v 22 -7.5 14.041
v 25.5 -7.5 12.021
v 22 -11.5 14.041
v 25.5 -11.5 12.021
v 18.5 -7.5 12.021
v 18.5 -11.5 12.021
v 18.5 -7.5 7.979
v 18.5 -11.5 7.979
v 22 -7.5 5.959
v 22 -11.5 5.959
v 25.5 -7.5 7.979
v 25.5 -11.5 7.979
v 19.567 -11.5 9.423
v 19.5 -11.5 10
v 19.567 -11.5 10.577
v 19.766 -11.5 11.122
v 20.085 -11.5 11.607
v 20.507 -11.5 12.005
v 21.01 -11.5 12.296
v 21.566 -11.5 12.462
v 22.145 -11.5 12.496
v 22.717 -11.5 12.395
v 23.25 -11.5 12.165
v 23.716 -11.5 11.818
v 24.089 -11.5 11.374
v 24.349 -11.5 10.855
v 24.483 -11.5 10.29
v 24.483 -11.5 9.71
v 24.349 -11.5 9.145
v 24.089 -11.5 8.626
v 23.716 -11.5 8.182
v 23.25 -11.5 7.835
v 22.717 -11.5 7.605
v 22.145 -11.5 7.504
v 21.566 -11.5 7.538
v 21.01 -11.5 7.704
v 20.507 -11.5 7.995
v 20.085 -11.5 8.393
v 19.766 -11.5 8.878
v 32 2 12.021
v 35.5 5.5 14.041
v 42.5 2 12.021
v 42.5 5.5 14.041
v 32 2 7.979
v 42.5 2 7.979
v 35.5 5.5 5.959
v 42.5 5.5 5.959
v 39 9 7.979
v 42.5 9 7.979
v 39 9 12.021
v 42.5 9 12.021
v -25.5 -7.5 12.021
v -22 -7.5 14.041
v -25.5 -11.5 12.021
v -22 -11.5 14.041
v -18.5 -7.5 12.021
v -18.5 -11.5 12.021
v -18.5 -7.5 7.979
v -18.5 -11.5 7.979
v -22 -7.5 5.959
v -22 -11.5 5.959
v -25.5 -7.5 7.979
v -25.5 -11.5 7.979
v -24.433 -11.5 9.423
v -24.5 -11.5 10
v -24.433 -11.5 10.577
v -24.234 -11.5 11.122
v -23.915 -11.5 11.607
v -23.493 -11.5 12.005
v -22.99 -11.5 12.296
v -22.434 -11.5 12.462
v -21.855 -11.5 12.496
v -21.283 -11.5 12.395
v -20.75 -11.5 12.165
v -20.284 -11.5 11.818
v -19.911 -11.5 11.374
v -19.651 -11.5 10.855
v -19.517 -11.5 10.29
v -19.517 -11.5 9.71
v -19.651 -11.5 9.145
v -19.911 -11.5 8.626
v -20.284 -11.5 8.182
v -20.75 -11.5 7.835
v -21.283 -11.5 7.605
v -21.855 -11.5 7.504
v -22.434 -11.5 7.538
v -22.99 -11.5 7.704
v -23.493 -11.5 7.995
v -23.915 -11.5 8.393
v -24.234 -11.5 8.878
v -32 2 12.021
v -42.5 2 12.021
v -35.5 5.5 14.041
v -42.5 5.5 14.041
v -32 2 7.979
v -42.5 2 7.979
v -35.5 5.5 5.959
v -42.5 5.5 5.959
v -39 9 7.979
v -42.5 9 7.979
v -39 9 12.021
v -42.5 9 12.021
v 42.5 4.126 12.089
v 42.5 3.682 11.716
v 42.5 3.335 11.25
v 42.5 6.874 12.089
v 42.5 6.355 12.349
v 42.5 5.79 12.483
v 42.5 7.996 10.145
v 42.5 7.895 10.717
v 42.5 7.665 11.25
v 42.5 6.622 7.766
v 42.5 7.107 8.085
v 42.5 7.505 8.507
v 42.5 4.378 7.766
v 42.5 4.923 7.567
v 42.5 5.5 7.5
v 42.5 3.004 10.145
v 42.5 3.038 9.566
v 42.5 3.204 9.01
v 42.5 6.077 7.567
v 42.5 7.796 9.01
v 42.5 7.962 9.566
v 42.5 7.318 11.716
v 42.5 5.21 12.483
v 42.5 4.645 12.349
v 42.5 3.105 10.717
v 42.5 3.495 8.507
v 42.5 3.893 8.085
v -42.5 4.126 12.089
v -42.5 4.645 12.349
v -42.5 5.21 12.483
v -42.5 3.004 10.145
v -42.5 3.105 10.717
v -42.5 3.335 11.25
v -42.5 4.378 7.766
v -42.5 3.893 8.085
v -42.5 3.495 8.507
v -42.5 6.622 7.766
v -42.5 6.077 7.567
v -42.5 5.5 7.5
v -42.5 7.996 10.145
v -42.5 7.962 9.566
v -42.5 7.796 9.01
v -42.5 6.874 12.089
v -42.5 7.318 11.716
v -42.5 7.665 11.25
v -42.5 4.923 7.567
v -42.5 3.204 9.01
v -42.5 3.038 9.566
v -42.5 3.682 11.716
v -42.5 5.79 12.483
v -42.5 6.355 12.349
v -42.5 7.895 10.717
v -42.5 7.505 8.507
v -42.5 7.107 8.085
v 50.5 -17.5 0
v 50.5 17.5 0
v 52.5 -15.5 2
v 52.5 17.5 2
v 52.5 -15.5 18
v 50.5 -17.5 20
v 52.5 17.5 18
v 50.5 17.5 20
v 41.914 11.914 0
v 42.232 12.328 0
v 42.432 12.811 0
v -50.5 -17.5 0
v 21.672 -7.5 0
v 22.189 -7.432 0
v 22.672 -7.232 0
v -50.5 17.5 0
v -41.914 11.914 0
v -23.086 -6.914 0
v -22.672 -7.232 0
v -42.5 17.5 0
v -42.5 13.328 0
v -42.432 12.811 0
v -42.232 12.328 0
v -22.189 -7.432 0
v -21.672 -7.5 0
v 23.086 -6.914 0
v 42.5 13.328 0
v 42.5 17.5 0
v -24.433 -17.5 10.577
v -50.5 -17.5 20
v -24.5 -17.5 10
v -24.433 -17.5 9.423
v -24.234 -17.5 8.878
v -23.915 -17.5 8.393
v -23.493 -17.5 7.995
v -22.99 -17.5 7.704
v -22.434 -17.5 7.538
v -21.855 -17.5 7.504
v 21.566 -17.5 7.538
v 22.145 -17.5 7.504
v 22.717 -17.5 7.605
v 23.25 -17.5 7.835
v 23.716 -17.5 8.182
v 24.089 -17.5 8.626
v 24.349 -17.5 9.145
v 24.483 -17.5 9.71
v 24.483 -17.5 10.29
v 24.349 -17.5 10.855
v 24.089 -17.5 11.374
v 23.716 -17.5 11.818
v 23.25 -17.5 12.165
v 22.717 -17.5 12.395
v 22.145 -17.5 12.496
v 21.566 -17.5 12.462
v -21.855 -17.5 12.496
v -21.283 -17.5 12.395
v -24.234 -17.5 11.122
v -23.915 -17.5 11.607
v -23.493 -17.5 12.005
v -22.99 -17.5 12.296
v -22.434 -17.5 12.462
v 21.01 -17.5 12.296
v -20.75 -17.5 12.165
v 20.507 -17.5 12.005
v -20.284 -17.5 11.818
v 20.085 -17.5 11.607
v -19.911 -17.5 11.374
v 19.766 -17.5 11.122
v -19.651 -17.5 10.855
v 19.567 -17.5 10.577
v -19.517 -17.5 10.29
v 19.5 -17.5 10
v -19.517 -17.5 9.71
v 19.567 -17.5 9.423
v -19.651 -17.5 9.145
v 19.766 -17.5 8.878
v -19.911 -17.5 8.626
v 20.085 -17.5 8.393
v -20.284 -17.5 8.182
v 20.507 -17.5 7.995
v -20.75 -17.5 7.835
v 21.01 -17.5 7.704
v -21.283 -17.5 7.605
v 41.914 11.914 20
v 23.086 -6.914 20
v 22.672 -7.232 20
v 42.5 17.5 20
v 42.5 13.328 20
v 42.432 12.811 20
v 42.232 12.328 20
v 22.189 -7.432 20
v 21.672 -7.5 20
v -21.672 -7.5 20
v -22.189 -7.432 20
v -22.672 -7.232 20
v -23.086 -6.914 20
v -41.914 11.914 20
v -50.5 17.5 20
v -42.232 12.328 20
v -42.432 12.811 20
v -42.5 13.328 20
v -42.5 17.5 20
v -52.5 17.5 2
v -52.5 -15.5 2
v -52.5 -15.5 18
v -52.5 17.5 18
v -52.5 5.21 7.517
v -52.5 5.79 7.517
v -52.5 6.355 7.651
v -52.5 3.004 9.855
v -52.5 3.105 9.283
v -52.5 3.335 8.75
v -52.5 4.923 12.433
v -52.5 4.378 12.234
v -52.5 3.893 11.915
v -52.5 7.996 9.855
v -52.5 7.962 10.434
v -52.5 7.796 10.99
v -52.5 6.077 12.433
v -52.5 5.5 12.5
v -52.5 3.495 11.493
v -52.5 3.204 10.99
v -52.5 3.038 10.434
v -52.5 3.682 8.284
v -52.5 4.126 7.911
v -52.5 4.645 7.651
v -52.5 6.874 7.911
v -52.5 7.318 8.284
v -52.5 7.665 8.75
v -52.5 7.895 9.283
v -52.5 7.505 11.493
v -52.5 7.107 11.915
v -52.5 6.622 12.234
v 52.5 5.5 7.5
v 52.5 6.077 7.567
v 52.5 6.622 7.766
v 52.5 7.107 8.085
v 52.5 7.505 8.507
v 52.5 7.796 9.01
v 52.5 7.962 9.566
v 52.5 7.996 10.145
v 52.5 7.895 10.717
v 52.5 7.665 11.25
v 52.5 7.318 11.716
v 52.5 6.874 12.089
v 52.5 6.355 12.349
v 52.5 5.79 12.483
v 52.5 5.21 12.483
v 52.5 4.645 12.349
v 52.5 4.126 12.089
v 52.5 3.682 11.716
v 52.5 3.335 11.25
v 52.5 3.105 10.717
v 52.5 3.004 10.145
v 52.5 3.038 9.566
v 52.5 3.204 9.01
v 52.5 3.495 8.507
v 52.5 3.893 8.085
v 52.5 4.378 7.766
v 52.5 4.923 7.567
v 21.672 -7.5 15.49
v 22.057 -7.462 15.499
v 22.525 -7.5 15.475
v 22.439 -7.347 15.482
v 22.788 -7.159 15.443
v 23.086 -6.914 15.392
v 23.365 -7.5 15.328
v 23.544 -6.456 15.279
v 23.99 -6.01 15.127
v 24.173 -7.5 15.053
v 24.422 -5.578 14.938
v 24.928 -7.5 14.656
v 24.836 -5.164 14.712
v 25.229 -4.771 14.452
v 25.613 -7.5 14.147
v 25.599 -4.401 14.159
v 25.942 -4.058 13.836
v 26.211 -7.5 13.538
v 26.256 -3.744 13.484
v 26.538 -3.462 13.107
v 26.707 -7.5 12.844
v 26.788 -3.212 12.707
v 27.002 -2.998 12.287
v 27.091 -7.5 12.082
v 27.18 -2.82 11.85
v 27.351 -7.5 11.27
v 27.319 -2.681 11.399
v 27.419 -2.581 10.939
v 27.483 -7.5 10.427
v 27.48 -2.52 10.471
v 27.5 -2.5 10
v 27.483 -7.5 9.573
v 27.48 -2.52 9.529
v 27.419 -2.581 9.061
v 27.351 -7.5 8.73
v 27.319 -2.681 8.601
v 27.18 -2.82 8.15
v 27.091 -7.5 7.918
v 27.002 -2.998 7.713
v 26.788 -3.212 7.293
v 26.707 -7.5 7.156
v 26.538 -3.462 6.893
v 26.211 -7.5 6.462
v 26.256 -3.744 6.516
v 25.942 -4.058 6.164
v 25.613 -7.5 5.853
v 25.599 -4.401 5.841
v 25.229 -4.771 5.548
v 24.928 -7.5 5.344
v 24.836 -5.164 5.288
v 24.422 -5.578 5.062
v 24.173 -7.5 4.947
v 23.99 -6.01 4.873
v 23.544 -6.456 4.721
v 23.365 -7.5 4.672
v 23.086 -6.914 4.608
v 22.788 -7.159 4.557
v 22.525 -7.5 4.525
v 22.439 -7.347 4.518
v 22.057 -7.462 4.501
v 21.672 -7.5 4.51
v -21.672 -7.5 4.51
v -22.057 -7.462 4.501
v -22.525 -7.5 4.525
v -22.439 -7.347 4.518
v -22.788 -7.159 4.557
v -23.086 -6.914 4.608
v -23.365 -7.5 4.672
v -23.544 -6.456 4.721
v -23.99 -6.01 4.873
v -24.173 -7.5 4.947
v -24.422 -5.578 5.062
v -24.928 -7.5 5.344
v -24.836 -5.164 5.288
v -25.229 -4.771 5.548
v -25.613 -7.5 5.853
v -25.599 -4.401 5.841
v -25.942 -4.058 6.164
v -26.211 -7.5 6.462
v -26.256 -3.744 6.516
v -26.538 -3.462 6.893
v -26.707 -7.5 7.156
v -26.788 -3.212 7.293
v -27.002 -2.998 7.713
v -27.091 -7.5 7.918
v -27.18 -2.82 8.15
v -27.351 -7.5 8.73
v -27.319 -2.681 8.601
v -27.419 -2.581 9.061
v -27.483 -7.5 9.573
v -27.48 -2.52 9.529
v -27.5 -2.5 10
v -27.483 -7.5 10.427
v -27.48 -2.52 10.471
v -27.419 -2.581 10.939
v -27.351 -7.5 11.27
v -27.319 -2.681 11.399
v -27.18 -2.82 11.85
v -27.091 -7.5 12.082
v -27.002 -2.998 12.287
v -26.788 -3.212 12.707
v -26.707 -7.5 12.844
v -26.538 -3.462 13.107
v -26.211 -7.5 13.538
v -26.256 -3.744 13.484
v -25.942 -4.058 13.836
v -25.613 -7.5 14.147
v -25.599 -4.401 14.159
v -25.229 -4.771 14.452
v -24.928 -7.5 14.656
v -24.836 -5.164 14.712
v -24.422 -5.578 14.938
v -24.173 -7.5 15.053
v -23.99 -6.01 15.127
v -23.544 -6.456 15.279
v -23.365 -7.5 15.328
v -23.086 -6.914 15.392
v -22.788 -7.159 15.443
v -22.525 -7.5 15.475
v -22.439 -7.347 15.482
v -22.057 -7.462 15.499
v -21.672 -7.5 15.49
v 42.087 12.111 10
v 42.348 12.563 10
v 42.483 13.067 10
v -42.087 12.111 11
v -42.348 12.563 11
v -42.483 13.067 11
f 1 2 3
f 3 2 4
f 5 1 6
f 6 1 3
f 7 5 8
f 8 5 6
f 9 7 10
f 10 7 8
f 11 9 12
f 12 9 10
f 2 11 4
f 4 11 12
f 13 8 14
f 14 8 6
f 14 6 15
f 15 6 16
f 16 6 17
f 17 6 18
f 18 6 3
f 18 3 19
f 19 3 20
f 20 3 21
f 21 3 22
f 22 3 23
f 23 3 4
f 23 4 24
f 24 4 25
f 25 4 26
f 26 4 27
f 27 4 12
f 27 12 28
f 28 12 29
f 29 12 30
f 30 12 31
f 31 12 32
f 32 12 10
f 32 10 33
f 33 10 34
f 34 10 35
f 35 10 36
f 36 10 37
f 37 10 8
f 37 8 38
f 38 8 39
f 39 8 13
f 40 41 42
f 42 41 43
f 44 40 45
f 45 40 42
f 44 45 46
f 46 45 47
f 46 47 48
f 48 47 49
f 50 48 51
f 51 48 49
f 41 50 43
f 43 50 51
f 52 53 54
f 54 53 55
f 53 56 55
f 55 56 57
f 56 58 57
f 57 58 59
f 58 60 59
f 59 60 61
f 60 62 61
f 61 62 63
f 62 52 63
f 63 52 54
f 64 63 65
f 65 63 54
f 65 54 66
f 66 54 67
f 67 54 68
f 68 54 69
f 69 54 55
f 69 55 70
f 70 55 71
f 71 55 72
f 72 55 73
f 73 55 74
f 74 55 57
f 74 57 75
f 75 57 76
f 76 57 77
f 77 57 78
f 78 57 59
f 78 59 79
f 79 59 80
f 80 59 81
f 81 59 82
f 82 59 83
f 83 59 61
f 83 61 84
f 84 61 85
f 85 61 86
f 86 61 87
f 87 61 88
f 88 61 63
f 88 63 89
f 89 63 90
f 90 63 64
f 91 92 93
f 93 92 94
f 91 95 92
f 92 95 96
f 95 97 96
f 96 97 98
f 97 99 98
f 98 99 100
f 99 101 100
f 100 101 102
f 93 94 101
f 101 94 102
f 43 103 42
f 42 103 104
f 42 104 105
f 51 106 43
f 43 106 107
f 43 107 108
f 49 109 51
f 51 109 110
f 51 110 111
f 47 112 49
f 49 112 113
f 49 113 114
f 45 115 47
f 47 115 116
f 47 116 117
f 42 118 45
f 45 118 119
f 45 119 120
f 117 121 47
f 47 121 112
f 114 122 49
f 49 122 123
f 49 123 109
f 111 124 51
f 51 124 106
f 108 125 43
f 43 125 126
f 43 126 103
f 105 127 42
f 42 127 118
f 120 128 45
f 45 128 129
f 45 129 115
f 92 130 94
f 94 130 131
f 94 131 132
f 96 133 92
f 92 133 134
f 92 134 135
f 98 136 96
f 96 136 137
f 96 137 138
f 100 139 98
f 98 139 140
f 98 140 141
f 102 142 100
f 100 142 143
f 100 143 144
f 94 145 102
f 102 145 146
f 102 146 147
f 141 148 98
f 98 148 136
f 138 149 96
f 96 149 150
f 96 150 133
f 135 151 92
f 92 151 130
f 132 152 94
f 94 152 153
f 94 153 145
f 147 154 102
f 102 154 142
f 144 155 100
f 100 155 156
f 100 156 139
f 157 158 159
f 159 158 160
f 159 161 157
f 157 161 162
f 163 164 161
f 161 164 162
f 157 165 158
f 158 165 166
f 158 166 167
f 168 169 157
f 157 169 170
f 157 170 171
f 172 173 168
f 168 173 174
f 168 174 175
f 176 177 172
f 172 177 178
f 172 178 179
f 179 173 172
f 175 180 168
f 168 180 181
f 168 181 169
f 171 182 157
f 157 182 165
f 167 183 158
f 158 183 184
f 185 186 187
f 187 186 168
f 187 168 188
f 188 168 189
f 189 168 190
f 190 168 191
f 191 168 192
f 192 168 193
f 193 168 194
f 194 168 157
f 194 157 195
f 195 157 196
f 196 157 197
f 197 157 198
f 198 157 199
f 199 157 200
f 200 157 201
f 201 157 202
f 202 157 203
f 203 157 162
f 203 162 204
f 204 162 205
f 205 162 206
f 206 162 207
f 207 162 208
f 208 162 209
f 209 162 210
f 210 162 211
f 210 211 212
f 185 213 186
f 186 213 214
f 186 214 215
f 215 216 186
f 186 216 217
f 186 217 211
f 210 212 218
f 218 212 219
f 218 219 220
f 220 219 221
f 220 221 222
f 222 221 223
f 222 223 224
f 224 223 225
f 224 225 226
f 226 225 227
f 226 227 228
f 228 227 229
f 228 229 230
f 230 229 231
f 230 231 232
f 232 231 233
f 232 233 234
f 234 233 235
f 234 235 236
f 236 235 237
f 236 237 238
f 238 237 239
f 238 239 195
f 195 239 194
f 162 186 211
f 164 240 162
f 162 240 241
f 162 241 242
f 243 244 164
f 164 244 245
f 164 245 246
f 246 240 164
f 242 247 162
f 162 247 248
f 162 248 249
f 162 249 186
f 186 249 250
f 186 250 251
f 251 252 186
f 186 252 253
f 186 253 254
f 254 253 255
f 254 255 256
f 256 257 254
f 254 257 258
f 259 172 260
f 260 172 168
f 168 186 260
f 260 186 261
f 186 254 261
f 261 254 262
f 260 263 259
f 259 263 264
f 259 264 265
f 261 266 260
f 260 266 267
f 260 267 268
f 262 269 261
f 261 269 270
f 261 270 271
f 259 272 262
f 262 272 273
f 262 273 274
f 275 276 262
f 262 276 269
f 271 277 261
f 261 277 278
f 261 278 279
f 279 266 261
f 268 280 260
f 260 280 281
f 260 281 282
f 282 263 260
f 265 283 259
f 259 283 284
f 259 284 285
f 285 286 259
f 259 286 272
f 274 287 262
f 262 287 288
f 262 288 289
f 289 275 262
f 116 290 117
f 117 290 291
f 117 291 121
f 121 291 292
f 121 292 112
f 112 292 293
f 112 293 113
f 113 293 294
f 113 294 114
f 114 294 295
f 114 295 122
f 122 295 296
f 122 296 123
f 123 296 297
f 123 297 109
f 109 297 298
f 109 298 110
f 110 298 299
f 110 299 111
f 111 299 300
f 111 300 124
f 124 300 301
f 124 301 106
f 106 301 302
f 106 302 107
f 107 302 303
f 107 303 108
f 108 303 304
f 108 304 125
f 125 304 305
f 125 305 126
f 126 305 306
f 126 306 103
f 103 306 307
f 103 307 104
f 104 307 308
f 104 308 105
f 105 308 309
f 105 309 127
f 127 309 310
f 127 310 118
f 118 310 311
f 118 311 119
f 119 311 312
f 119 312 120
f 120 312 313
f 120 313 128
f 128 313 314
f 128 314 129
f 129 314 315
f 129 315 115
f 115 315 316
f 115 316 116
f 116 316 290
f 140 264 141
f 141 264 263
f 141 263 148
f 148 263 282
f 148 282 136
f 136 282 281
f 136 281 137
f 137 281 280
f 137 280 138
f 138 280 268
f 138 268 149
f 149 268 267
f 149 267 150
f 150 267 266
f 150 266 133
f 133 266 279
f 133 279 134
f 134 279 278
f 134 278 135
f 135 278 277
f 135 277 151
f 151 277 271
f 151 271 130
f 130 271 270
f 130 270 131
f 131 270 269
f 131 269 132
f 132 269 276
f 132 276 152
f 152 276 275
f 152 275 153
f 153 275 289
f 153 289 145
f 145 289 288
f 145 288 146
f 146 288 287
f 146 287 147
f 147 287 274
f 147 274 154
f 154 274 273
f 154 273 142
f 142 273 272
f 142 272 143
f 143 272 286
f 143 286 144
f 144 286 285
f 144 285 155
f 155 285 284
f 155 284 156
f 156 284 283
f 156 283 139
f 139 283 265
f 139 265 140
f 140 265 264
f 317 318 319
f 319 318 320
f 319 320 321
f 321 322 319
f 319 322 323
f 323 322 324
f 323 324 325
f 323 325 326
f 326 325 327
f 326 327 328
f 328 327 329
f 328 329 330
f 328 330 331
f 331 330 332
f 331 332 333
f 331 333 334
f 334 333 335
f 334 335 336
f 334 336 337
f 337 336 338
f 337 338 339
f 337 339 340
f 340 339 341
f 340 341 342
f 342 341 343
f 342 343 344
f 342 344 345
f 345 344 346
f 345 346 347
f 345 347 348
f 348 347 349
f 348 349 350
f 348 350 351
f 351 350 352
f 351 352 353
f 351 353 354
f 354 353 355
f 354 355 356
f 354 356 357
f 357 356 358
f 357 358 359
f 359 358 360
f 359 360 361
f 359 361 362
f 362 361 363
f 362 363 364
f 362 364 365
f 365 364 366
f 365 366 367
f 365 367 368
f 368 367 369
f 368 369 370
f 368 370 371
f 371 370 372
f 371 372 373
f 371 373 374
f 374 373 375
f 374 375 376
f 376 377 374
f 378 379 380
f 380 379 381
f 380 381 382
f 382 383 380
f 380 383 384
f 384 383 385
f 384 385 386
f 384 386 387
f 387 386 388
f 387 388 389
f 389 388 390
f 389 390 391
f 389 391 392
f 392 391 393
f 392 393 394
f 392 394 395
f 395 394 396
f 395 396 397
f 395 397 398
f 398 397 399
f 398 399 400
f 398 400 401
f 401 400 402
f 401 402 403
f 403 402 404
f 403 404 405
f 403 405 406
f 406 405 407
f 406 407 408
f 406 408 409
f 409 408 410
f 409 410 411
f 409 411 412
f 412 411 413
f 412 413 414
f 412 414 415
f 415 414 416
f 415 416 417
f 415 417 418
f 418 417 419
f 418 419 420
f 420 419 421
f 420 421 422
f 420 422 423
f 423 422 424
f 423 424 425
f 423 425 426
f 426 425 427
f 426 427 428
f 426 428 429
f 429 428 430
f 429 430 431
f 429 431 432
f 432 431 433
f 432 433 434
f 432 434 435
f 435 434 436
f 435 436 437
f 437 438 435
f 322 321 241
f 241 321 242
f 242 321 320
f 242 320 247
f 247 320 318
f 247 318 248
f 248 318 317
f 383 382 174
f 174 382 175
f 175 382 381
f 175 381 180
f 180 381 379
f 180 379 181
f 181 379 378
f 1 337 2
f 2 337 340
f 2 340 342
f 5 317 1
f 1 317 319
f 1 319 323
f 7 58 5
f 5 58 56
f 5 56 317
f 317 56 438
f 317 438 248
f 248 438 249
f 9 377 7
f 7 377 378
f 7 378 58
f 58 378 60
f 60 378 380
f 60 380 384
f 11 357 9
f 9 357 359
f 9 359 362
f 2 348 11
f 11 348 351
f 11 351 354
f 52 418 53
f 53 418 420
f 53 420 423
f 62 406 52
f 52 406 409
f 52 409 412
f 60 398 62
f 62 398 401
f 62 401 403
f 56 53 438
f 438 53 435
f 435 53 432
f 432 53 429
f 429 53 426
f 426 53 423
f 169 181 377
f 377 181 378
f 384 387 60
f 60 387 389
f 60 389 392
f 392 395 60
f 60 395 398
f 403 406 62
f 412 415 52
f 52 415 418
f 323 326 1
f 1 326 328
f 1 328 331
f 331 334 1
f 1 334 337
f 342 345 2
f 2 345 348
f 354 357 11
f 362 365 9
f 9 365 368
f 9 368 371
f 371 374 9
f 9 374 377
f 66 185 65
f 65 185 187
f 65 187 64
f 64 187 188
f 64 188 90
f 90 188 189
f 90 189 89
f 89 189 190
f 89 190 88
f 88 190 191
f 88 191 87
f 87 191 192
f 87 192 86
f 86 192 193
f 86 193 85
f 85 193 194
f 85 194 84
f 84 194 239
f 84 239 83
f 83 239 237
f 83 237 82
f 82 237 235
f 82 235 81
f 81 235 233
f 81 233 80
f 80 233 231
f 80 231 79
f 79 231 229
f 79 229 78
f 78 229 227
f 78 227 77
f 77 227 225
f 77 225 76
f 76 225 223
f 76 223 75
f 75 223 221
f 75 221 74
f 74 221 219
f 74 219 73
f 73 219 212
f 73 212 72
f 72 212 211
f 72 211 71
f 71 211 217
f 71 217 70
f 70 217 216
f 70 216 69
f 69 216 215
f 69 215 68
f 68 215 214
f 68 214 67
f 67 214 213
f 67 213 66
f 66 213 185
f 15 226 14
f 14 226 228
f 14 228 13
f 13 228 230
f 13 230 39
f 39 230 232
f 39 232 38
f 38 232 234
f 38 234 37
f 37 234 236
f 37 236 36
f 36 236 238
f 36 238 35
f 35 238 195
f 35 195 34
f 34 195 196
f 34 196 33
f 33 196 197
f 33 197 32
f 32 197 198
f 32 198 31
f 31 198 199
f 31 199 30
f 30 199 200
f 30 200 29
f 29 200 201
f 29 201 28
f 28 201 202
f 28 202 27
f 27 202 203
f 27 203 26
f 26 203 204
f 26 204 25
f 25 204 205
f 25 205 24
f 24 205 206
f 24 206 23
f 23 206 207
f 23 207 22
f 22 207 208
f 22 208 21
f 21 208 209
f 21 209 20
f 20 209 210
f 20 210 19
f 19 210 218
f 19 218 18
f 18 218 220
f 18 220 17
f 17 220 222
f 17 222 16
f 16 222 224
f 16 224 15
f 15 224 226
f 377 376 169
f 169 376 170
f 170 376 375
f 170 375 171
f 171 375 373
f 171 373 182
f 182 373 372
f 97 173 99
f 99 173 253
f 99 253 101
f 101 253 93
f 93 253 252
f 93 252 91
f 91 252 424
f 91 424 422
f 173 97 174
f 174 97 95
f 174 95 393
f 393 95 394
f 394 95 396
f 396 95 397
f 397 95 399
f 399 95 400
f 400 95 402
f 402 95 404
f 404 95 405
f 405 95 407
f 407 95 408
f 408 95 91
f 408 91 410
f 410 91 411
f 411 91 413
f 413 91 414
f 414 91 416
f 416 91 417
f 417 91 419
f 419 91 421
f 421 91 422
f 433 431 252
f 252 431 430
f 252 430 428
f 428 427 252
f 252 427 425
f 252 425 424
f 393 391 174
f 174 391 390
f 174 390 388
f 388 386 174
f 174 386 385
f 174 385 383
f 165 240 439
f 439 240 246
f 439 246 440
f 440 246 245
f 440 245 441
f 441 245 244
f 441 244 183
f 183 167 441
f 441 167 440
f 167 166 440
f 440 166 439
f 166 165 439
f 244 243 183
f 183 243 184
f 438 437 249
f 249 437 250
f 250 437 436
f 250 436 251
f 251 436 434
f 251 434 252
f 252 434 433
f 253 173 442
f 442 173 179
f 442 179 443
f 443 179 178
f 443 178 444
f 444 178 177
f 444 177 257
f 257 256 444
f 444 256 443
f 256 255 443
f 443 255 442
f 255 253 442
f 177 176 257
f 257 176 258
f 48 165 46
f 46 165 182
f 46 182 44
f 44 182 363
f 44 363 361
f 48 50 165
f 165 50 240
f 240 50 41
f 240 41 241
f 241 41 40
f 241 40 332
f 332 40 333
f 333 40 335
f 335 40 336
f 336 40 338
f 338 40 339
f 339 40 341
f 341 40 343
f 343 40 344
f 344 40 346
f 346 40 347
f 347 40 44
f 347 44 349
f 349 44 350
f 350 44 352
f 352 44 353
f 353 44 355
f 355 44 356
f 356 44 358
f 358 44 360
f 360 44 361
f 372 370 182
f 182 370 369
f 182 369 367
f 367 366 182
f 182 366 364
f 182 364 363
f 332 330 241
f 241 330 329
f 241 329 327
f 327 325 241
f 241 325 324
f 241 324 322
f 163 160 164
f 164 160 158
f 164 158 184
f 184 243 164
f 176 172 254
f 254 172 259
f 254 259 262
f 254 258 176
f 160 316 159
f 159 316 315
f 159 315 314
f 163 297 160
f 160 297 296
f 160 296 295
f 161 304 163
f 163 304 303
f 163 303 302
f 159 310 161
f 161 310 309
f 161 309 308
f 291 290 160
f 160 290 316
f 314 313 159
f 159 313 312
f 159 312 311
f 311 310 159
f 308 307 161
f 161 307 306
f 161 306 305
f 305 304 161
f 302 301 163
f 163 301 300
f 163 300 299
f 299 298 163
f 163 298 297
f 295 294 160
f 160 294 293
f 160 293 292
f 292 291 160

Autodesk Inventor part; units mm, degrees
ref_plane "XZ Plane" through (0, 0, 0) normal (0, 1, 0) x (-1, 0, 0)
ref_plane "XY Plane" through (0, 0, 0) normal (0, 0, 1) x (1, 0, 0)
sketch "Sketch1" plane through (0, 0, 0) normal (0, 0, 1) x (1, 0, 0)
  line L0 (-52.5, -17.5) -> (52.5, -17.5)
  line L1 (52.5, -17.5) -> (52.5, 17.5)
  line L2 (52.5, 17.5) -> (-52.5, 17.5)
  line L3 (-52.5, 17.5) -> (-52.5, -17.5)
  line L4 (-52.5, -17.5) -> (52.5, 17.5) construction
  line L5 (52.5, -17.5) -> (-52.5, 17.5) construction
  point P0 (0, 0)
  dimension "d0" = 105
  dimension "d1" = 35
extrude "Extrusion1" add sketch "Sketch1" along normal blind 20
sketch "Sketch2" plane through (0, 0, 20) normal (0, 0, 1) x (1, 0, 0)
  line L0 (52.5, 17.5) -> (-52.5, 17.5) projected
  line L1 (-42.5, 17.5) -> (42.5, 17.5)
  line L2 (42.5, 17.5) -> (42.5, -7.5)
  line L3 (42.5, -7.5) -> (-42.5, -7.5)
  line L4 (-42.5, -7.5) -> (-42.5, 17.5)
  line L5 (-52.5, 17.5) -> (-52.5, -17.5) projected
  line L6 (52.5, -17.5) -> (52.5, 17.5) projected
  line L7 (-52.5, -17.5) -> (52.5, -17.5) projected
  point P0 (0, 0)
  point P1 (42.5, 17.5)
  dimension "d4" = 10
  dimension "d5" = 10
  dimension "d6" = 10
extrude "Extrusion2" cut sketch "Sketch2" against normal through all contours L2 L3 L4 L0
chamfer "Chamfer1" distance 20 angle 45 2 edges at (-42.5, -7.5, 10) (42.5, -7.5, 10)
fillet "Fillet1" radius 2 4 edges at (-42.5, 12.5, 10) (-22.5, -7.5, 10) (22.5, -7.5, 10) (42.5, 12.5, 10)
sketch "Sketch3" plane through (-21.6716, -7.5, 20) normal (0, 1, 0) x (1, 0, 0)
  line L0 (-35.2748, 10) -> (83.1656, 10) construction
  circle A0 centre (-0.3284, 10) radius 2.5
  line L1 (21.6716, 24) -> (21.6716, -4) projected
  circle A1 centre (43.6716, 10) radius 2.5
  point P0 (21.6716, 20)
  dimension "d13" = 5
  dimension "d14" = 22
extrude "Extrusion3" cut sketch "Sketch3" against normal through all both and the other way through all
sketch "Sketch4" plane through (-21.6716, -7.5, 20) normal (0, 1, 0) x (1, 0, 0)
  arc A0 (-1.4142, 12.2519) -> (-1.4142, 7.7481) centre (-0.3284, 10) ccw projected
  arc A1 (44.7574, 7.7481) -> (44.7574, 12.2519) centre (43.6716, 10) ccw projected
  circle A2 centre (-0.3284, 10) radius 5.5
  circle A3 centre (43.6716, 10) radius 5.5
  point P0 (21.6716, 20)
  dimension "d17" = 11
  dimension "d18" = 11
extrude "Extrusion4" cut sketch "Sketch4" along normal blind 20
sketch "Sketch5" plane through (52.5, -17.5, 0) normal (1, 0, 0) x (0, 0, -1)
  circle A0 centre (-10, 23) radius 2.5
  line L0 (-20, 0) -> (-20, 35) projected
  line L1 (0, 35) -> (-20, 35) projected
  point P0 (0, 17.5)
  dimension "d21" = 10
  dimension "d22" = 12
  dimension "d23" = 5
extrude "Extrusion5" cut sketch "Sketch5" against normal through all
chamfer "Chamfer2" distance 2 angle 45 6 edges at (-52.5, 0, 20) (-52.5, 0, 0) (52.5, 0, 20) (52.5, 0, 0) (-52.5, -17.5, 10) (52.5, -17.5, 10)
sketch "Sketch6" plane through (-42.5, 17.5, 20) normal (1, 0, 0) x (0, 0, -1)
  circle A0 centre (10, -12) radius 2.5 projected
  circle A1 centre (10, -12) radius 5.5
  point P0 (20, -17.5)
  dimension "d29" = 11
extrude "Extrusion6" cut sketch "Sketch6" along normal blind 20
mirror "Mirror1" about plane through (0, 0, 0) normal (1, 0, 0) of "Extrusion6"
sketch "Sketch7" plane through (-42.5, 5.5, 10) normal (1, 0, 0) x (0, 0, -1)
  circle A0 centre (0, 0) radius 5.5 projected
  line L0 (4.0415, 0) -> (2.0207, -3.5)
  line L1 (2.0207, -3.5) -> (-2.0207, -3.5)
  line L2 (-2.0207, -3.5) -> (-4.0415, 0)
  line L3 (-4.0415, 0) -> (-2.0207, 3.5)
  line L4 (-2.0207, 3.5) -> (2.0207, 3.5)
  line L5 (2.0207, 3.5) -> (4.0415, 0)
  point P0 (10, -5.5)
  dimension "d32" = 7
extrude "Extrusion7" add sketch "Sketch7" along normal up to surface surface through (-32.5, 2.5, 20) normal (0.7071, 0.7071, 0)
sketch "Sketch8" plane through (-21.6716, -7.5, 20) normal (0, 1, 0) x (1, 0, 0)
  arc A0 (-1.4142, 15.3918) -> (-1.4142, 4.6082) centre (-0.3284, 10) ccw projected
  circle A1 centre (-0.3284, 10) radius 5.5
  line L0 (-0.3284, 14.0415) -> (3.1716, 12.0207)
  line L1 (3.1716, 12.0207) -> (3.1716, 7.9793)
  line L2 (3.1716, 7.9793) -> (-0.3284, 5.9585)
  line L3 (-0.3284, 5.9585) -> (-3.8284, 7.9793)
  line L4 (-3.8284, 7.9793) -> (-3.8284, 12.0207)
  line L5 (-3.8284, 12.0207) -> (-0.3284, 14.0415)
  point P0 (21.6716, 20)
  dimension "d35" = 7
extrude "Extrusion8" cut sketch "Sketch8" against normal blind 4 contours L0 L1 L2 L3 L4 L5
mirror "Mirror2" about plane through (0, 0, 0) normal (1, 0, 0) of "Extrusion7", "Extrusion8"
properties part number "_3DPrint"
